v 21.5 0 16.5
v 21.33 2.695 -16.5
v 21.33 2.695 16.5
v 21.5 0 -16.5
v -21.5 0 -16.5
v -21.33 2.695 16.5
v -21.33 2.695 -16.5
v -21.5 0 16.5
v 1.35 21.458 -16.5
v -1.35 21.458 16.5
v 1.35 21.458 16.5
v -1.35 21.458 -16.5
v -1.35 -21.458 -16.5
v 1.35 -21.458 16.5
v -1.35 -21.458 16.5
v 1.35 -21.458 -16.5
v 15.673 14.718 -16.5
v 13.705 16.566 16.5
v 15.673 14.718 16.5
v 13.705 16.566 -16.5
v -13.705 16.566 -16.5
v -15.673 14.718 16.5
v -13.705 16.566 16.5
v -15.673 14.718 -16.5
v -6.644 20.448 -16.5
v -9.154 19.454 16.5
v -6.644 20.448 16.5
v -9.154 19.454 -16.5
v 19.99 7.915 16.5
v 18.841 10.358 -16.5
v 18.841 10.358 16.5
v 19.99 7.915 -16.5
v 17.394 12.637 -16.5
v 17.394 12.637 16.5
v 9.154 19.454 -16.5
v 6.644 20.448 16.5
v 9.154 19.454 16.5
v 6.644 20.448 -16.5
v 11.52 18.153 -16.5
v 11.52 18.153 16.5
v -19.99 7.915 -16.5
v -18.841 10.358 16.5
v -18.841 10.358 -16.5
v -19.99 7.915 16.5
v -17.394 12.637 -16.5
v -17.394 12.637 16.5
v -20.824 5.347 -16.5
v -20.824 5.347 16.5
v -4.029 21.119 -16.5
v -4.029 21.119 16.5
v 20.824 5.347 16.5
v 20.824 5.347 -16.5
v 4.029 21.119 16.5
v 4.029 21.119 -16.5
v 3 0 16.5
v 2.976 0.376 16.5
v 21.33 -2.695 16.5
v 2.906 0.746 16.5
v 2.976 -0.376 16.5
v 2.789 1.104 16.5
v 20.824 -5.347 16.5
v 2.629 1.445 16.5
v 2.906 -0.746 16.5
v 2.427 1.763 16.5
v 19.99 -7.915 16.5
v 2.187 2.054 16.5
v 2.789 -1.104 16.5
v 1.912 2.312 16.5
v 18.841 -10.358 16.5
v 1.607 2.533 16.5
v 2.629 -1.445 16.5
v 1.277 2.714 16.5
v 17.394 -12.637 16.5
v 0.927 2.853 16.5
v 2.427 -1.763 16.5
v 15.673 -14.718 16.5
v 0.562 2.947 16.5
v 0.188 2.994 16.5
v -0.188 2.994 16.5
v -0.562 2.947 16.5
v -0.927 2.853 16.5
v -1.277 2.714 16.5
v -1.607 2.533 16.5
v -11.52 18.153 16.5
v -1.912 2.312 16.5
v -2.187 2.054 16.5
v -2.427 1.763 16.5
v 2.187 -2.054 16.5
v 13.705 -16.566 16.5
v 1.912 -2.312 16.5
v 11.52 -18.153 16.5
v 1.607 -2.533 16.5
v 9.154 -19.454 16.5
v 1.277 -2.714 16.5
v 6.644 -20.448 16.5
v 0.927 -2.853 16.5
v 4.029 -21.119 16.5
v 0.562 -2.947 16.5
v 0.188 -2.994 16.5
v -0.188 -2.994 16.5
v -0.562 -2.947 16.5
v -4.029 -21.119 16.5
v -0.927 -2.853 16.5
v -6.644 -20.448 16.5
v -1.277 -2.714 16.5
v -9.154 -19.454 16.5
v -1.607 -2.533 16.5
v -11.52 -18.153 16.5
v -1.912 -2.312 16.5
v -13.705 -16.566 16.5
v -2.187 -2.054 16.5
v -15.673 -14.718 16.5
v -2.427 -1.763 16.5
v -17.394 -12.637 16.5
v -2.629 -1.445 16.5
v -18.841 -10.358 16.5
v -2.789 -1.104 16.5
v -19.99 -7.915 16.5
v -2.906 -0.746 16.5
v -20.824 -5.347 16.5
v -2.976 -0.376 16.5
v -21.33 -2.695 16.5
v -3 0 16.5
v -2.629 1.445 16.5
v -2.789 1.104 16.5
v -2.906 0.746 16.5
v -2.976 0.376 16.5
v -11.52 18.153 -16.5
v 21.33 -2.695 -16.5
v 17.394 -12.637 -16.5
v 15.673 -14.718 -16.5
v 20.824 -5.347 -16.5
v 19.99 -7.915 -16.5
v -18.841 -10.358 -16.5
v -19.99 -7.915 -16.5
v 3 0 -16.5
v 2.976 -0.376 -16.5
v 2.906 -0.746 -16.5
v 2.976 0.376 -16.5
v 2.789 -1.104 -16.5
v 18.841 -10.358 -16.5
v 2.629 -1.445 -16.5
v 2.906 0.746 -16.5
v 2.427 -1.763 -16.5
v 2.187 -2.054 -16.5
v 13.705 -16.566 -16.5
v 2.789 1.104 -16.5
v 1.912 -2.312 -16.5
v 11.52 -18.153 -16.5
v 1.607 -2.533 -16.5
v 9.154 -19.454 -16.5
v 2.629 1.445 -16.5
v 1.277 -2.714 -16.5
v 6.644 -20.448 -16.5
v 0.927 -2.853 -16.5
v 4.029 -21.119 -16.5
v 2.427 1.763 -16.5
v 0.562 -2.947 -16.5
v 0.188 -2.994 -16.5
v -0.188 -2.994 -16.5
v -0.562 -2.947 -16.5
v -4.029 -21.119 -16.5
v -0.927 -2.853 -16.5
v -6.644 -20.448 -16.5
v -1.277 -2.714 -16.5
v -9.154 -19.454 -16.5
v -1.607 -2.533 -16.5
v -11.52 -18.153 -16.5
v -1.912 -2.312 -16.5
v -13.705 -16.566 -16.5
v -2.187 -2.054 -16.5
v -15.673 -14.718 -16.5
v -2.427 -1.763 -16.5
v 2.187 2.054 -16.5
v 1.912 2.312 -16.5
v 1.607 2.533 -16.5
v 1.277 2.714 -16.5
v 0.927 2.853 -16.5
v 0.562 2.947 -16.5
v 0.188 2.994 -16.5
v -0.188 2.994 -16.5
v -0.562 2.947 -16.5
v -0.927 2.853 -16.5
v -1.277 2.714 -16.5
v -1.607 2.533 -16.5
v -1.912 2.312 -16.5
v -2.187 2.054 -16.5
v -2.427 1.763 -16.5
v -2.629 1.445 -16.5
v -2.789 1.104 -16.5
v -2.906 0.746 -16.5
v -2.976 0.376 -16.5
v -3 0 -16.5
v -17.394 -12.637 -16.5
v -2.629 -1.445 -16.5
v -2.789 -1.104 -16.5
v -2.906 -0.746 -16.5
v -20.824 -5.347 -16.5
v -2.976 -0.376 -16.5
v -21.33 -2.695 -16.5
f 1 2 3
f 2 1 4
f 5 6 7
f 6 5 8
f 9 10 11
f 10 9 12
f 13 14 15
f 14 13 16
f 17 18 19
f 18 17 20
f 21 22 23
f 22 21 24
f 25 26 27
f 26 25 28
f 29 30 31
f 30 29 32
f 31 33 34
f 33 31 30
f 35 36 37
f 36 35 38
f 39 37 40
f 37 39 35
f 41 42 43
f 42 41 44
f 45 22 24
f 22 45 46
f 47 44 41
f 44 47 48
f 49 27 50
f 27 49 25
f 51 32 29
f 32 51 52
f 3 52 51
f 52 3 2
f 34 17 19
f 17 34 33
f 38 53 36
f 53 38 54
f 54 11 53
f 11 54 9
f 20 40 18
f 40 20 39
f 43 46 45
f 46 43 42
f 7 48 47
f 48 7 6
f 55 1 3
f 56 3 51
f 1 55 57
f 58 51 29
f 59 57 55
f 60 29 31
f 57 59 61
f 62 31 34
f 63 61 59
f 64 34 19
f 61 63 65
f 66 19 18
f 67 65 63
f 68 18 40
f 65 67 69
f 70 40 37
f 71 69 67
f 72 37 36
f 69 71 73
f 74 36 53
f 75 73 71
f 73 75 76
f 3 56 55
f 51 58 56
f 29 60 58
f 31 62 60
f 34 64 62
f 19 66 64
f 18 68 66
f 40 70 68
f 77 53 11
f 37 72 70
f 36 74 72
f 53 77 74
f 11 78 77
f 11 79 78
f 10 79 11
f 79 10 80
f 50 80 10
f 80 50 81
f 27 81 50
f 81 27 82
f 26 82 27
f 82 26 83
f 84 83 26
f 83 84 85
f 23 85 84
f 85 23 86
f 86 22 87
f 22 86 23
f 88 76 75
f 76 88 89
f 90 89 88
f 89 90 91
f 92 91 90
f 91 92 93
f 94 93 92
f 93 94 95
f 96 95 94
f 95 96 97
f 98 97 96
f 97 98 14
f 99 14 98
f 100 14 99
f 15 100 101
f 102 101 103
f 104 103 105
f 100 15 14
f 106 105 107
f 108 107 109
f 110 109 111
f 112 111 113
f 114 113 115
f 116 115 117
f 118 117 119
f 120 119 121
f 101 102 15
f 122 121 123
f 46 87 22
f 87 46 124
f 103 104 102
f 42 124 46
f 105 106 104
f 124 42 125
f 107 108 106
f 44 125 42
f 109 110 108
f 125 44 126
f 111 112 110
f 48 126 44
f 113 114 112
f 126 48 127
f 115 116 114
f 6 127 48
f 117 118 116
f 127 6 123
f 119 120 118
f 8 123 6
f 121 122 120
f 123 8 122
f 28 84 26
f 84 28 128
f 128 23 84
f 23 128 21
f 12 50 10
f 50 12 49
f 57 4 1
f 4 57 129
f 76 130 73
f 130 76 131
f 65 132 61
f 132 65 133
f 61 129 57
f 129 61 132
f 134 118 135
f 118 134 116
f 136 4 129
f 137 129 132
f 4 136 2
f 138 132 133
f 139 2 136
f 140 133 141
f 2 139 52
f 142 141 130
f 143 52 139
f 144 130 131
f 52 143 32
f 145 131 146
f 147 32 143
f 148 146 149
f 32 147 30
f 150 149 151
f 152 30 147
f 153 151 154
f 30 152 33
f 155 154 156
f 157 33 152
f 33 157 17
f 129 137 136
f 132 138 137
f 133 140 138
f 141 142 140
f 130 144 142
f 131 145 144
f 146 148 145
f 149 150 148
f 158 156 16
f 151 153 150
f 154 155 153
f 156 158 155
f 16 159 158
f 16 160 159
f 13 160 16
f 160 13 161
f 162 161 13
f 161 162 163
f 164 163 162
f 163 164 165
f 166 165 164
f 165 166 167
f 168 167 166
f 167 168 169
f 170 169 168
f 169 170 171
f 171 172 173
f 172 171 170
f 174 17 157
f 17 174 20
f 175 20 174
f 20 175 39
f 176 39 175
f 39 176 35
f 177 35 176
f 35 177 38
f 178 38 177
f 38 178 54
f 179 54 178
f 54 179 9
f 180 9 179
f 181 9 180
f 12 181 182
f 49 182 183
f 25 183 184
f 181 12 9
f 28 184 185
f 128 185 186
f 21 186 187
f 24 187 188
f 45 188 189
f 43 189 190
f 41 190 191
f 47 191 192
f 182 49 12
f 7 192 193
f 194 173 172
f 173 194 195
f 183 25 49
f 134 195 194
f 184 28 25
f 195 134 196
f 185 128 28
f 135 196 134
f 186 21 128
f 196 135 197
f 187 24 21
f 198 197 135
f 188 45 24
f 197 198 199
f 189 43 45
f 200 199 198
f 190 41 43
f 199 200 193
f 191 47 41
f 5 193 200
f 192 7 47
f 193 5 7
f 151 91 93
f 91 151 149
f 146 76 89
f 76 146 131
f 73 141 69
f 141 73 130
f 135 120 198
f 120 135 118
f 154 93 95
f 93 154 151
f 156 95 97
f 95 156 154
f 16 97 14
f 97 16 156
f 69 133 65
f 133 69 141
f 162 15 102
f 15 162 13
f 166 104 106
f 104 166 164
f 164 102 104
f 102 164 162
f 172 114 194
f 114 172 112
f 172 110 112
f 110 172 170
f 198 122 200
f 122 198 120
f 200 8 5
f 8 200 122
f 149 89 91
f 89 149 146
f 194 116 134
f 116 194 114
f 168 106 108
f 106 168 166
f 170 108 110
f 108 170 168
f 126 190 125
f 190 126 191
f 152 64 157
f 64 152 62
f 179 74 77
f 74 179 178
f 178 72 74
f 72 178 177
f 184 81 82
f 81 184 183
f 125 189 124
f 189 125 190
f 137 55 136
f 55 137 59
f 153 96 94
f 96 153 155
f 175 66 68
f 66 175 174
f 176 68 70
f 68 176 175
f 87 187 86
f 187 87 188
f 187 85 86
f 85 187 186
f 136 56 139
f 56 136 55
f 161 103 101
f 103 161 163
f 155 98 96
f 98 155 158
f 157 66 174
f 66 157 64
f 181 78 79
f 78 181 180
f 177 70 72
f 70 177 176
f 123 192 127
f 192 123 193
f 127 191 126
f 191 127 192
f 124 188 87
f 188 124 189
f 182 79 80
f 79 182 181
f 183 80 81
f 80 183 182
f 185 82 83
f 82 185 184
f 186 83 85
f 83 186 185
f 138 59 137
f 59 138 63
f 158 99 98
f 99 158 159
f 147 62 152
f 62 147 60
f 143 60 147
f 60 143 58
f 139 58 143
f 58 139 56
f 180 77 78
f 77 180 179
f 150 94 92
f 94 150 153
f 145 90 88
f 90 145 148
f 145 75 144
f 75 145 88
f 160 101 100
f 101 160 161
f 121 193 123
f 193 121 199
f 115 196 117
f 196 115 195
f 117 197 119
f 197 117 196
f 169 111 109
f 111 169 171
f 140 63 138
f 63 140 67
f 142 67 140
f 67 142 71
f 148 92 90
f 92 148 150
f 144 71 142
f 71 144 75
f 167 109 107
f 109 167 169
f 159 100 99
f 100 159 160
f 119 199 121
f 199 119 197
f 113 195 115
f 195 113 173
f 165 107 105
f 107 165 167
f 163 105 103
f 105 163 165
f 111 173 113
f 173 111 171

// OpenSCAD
$fn = 50;


difference() {
	union() {
		translate(v = [0, 0, -16.5000000000]) {
			cylinder(h = 33, r = 21.5000000000);
		}
	}
	union() {
		translate(v = [0, 0, -100.0000000000]) {
			cylinder(h = 200, r = 3);
		}
	}
}
